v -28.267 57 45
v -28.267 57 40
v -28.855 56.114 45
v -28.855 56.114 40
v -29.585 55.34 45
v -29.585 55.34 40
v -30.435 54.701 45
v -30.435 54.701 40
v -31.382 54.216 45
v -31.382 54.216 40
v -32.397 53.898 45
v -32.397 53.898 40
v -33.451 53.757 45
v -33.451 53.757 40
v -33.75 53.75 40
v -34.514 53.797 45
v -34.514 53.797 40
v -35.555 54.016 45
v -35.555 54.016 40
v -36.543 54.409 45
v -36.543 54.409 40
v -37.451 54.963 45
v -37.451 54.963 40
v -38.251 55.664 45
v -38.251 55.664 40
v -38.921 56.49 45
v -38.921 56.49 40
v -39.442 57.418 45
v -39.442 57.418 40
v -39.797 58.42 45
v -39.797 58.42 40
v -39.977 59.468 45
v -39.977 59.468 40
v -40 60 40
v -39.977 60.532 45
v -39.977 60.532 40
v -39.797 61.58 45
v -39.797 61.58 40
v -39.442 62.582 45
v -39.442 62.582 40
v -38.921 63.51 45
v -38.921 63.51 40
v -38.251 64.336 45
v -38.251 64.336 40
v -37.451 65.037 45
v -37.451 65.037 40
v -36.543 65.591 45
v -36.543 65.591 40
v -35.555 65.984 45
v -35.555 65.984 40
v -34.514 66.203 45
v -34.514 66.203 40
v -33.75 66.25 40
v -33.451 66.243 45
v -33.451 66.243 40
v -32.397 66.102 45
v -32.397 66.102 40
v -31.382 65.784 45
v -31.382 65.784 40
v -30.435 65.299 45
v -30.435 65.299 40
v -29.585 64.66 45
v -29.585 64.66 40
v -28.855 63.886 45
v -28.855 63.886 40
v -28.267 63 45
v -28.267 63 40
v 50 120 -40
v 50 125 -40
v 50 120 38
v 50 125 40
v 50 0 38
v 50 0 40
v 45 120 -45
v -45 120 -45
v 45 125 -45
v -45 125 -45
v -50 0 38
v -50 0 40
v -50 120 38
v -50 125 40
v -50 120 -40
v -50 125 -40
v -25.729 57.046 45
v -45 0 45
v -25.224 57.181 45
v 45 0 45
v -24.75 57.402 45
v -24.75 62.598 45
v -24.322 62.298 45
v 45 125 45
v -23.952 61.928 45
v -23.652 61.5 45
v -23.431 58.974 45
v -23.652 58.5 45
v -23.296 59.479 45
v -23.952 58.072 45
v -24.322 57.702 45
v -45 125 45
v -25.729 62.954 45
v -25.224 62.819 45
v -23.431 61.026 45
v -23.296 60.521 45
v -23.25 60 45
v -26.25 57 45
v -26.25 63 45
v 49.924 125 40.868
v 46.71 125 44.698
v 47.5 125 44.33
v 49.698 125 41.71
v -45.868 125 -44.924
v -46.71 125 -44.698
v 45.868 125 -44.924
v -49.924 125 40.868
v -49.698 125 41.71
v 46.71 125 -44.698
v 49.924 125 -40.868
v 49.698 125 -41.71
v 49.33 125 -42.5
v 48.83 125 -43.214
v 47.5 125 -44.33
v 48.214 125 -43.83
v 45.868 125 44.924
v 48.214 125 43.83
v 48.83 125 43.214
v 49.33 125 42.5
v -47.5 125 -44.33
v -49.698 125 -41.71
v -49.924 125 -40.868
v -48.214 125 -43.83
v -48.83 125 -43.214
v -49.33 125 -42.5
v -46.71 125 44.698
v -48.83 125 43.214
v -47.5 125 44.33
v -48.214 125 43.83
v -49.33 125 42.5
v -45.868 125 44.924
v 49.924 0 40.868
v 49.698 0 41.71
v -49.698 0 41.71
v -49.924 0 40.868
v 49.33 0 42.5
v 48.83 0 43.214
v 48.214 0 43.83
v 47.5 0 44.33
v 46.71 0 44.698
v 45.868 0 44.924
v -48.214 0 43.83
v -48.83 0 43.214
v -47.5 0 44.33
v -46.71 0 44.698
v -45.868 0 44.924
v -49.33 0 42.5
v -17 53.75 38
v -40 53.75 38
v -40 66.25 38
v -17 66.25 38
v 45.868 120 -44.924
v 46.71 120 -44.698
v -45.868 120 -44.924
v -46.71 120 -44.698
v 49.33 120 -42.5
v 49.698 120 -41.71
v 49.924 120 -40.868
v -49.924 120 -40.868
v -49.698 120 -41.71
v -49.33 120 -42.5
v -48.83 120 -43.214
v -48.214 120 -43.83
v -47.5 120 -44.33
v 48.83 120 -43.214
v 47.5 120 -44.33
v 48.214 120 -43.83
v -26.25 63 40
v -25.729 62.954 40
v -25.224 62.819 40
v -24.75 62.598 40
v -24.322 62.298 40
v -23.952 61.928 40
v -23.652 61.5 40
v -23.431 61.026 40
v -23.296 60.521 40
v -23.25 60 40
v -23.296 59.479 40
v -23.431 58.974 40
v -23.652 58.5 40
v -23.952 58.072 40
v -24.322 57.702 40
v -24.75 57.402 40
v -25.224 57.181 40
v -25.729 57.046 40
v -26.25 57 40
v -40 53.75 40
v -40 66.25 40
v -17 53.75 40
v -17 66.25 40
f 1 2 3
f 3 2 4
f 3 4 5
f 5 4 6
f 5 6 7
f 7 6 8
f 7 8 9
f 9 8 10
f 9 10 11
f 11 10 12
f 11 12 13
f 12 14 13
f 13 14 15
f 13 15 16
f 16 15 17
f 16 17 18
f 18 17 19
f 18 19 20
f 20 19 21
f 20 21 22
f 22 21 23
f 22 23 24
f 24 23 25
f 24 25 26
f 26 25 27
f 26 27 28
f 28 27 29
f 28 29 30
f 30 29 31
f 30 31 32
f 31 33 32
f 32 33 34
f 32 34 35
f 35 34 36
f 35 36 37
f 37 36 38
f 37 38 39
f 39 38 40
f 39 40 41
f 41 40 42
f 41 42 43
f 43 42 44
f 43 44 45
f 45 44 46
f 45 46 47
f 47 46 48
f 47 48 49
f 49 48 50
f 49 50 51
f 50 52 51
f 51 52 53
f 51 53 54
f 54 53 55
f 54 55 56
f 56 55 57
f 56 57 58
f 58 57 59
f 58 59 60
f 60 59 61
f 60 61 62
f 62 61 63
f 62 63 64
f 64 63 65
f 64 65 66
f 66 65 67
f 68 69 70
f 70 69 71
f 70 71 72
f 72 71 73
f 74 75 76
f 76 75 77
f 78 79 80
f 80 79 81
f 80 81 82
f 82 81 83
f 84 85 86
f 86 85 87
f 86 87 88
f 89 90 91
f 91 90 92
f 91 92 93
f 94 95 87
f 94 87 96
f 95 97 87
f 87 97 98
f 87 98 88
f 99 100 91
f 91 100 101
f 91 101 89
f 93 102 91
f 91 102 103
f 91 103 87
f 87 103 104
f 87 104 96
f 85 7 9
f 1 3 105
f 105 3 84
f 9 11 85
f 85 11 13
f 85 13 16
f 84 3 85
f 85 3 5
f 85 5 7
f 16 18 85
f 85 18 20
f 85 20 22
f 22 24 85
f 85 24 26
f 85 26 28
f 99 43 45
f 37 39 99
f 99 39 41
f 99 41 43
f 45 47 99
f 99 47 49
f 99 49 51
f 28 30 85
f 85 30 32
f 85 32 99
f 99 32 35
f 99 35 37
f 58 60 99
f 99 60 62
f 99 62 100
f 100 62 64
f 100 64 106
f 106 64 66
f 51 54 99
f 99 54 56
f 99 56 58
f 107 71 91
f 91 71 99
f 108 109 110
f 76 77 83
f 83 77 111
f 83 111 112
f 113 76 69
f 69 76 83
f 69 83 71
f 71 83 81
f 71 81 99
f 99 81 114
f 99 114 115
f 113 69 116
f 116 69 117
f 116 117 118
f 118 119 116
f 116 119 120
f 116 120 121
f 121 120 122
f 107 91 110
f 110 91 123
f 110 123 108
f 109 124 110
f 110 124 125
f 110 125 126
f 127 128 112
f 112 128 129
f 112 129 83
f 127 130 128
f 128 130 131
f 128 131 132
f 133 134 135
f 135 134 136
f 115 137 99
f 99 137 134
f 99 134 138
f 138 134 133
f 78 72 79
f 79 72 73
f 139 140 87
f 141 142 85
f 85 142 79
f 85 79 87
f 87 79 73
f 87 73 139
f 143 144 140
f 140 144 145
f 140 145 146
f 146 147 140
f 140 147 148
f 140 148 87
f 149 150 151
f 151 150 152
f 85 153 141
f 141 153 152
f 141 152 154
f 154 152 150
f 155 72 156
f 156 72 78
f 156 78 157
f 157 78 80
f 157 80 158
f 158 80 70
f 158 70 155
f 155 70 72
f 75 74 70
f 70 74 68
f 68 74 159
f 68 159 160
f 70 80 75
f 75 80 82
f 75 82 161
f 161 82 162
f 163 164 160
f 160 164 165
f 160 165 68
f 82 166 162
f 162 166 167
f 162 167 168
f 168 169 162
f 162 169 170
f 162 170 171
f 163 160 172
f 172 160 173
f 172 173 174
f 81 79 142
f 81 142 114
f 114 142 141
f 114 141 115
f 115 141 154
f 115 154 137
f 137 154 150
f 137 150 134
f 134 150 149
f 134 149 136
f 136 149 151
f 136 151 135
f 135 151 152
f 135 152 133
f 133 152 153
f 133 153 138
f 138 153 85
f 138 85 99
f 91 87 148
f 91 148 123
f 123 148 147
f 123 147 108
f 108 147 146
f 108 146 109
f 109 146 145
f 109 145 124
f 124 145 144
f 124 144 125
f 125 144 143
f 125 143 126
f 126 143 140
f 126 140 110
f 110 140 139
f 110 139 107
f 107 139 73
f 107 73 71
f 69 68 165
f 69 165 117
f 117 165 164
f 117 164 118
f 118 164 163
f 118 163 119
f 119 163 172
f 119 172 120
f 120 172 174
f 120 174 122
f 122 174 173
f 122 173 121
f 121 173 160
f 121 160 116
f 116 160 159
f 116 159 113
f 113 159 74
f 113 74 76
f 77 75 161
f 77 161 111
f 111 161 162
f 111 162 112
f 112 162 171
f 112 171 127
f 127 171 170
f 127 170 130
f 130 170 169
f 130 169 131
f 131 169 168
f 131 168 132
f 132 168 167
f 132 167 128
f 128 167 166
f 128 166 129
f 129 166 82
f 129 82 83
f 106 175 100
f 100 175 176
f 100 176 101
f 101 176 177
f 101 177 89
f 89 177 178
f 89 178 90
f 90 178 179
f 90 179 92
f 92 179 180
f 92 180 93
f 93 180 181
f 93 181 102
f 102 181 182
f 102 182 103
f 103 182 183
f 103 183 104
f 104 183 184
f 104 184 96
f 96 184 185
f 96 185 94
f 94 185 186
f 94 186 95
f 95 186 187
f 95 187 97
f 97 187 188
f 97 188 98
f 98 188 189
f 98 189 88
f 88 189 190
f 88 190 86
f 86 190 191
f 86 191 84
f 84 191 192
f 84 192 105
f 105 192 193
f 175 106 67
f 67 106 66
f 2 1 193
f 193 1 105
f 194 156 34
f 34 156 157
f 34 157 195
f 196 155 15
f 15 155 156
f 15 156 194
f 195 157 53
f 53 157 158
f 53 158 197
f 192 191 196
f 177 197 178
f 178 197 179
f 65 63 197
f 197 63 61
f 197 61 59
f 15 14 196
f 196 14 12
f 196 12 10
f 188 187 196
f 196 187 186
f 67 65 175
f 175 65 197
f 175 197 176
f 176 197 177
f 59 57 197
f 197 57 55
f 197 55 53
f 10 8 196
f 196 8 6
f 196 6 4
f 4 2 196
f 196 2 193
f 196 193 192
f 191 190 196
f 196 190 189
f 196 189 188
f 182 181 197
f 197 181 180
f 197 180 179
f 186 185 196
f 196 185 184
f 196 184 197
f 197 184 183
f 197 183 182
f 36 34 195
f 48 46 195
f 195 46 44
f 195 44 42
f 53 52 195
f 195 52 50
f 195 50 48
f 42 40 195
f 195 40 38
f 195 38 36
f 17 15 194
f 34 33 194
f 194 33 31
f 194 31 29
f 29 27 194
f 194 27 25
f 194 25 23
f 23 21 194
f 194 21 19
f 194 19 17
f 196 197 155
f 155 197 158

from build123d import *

# Parameters (mm, degrees)
SKETCH_1_W          = 100
SKETCH_1_H          = 90
EXTRUDE_1_DEPTH     = 125
SKETCH_4_W          = 100
SKETCH_4_H          = 83
CUT_EXTRUDE_3_DEPTH = 120
FILLET_4_R          = 5
CUT_EXTRUDE_4_DEPTH = 120
SKETCH_6_W          = 23
SKETCH_6_H          = 12.5
CUT_EXTRUDE_5_DEPTH = 2


with BuildPart() as part:
    # 스케치1 → 보스-돌출1 (new body)
    with BuildSketch(Plane(origin=(0, 0, 0), x_dir=(1, 0, 0), z_dir=(0, 1, 0))):
        Rectangle(SKETCH_1_W, SKETCH_1_H)
    extrude(amount=EXTRUDE_1_DEPTH)

    # 스케치4 → 컷-돌출3 (cut)
    with BuildSketch(Plane.XZ):
        with Locations((0, -3.5)):
            Rectangle(SKETCH_4_W, SKETCH_4_H)
    extrude(amount=-CUT_EXTRUDE_3_DEPTH, mode=Mode.SUBTRACT)

    # 필렛4
    fillet_4_edges = [part.edges().sort_by_distance(p)[0] for p in [
        (50, 62.5, 45),
        (-50, 62.5, 45),
        (-50, 122.5, -45),
        (50, 122.5, -45),
    ]]
    fillet(fillet_4_edges, radius=FILLET_4_R)

    # 스케치5 → 컷-돌출4 (cut)
    with BuildSketch(Plane(origin=(0, 0, 38), x_dir=(-1, 0, 0), z_dir=(0, 0, -1))):
        with BuildLine():
            Line((26.25, 63), (28.26707195, 63))
            ThreePointArc((28.26707195, 63), (40, 60), (28.26707195, 57))
            Line((28.26707195, 57), (26.25, 57))
            ThreePointArc((26.25, 57), (23.25, 60), (26.25, 63))
        make_face()
    extrude(amount=-CUT_EXTRUDE_4_DEPTH, mode=Mode.SUBTRACT)

    # 스케치6 → 컷-돌출5 (cut)
    with BuildSketch(Plane(origin=(0, 0, 38), x_dir=(-1, 0, 0), z_dir=(0, 0, -1))):
        with Locations((28.5, 60)):
            Rectangle(SKETCH_6_W, SKETCH_6_H)
    extrude(amount=-CUT_EXTRUDE_5_DEPTH, mode=Mode.SUBTRACT)


solid = part.part
